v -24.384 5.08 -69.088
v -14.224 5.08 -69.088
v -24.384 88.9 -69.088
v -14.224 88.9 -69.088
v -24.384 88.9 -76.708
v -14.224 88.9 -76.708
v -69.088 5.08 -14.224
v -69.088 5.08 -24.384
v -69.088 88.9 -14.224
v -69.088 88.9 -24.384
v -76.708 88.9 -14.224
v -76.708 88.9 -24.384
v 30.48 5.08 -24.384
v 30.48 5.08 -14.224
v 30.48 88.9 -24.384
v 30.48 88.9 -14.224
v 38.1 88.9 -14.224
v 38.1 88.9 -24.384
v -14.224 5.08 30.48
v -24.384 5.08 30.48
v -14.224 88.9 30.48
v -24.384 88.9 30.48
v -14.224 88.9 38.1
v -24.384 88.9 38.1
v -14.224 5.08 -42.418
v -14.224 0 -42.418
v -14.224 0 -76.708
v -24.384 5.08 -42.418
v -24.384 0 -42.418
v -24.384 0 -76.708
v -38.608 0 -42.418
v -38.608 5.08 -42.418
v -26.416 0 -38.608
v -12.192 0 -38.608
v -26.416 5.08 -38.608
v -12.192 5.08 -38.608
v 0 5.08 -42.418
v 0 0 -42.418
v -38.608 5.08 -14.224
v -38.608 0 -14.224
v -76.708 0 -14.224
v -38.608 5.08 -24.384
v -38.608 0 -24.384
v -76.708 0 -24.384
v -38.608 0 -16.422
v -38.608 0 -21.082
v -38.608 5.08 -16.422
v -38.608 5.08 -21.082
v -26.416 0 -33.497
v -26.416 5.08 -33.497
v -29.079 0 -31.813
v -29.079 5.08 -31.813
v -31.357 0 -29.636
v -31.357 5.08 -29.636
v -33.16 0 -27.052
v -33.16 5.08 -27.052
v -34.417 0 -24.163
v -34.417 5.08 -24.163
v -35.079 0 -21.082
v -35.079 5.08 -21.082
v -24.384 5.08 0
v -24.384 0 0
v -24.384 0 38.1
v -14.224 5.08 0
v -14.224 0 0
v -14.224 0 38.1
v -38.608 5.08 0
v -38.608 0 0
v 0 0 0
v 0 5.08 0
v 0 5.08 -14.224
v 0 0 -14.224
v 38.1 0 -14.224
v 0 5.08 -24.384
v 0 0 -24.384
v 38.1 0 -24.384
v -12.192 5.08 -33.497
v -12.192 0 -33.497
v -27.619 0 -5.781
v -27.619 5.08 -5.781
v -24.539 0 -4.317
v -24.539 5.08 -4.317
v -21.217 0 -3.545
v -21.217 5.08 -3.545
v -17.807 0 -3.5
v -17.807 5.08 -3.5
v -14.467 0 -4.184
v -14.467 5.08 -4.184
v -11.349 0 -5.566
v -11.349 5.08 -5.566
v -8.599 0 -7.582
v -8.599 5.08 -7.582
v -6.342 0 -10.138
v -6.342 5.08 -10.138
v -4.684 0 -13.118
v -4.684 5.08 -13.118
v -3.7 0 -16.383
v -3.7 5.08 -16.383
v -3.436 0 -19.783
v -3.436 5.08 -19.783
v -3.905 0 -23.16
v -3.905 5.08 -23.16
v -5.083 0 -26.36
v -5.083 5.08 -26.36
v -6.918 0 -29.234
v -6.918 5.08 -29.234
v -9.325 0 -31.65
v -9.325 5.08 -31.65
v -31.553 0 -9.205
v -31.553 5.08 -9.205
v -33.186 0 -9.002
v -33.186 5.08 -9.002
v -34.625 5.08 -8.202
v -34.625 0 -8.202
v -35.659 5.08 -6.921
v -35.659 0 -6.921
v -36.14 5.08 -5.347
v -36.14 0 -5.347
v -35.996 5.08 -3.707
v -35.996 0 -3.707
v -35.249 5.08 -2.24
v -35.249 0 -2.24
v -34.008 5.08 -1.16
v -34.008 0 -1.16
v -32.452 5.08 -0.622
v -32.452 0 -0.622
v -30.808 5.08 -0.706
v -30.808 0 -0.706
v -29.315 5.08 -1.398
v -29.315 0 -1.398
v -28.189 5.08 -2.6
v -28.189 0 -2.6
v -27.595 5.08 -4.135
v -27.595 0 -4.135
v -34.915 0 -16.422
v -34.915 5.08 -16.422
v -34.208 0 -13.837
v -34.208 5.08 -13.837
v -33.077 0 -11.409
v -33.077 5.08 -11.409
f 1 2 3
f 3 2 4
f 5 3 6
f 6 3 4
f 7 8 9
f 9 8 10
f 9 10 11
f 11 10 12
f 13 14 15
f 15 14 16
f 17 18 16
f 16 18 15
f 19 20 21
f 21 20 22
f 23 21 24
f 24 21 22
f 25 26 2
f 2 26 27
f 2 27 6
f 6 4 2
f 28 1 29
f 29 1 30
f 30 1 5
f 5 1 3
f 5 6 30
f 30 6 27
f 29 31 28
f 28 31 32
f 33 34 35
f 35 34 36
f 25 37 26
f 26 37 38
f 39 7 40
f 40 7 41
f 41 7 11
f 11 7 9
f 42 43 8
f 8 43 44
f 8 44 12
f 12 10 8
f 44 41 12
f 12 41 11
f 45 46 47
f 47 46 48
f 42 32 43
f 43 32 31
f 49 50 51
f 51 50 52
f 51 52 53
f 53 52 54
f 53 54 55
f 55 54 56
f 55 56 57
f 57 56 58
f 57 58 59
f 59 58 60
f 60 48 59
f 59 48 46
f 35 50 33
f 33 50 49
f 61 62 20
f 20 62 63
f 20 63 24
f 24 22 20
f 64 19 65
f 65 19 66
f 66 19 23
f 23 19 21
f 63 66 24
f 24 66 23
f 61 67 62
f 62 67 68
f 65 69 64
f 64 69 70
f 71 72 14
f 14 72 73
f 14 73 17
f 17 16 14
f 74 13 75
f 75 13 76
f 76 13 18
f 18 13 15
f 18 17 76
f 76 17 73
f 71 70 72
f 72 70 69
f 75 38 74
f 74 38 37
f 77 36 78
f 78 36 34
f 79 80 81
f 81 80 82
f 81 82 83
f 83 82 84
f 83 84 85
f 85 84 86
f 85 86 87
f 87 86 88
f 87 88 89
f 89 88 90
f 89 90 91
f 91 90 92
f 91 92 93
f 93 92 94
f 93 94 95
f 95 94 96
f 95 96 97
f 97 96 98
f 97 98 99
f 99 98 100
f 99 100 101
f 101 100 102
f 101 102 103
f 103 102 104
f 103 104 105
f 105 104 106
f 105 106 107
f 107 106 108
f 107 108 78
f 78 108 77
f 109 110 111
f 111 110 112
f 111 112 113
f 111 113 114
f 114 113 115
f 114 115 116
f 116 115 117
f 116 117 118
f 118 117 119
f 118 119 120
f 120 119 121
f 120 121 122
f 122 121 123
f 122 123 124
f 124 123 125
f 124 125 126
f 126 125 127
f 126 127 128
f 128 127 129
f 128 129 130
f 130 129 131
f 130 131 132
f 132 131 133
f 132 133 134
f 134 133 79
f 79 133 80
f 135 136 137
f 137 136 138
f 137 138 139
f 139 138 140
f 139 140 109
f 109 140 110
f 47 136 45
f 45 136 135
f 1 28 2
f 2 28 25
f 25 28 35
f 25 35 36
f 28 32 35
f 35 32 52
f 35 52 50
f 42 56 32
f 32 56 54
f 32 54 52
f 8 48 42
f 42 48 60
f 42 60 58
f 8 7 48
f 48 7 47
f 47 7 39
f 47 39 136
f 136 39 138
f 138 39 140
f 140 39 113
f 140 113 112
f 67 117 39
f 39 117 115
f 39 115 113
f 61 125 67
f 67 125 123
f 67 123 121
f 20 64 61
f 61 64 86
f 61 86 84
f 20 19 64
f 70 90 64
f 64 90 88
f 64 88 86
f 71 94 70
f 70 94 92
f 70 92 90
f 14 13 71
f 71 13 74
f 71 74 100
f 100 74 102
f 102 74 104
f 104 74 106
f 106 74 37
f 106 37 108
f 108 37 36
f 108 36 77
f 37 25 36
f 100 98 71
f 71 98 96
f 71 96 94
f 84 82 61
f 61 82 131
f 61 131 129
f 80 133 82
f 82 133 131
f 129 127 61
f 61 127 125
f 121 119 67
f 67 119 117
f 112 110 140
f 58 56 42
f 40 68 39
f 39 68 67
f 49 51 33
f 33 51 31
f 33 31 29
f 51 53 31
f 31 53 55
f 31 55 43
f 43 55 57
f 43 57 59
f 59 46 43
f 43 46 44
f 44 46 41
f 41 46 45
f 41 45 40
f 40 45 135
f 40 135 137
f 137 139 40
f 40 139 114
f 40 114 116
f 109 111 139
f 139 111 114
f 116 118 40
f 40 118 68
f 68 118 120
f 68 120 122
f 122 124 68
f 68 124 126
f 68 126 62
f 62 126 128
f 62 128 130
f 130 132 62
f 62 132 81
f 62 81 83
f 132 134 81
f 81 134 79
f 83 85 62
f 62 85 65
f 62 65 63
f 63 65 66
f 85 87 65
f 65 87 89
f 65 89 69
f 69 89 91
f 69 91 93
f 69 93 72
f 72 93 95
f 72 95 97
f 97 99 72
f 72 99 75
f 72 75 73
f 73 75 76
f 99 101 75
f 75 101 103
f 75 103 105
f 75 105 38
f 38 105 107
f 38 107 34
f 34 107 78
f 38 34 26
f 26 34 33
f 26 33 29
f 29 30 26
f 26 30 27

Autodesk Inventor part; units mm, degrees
ref_plane "YZ Plane" through (0, 0, 0) normal (1, 0, 0) x (0, 1, 0)
ref_plane "XZ Plane" through (0, 0, 0) normal (0, 1, 0) x (-1, 0, 0)
ref_plane "XY Plane" through (0, 0, 0) normal (0, 0, 1) x (1, 0, 0)
sketch "Sketch1" plane through (0, 0, 0) normal (0, 1, 0) x (-1, 0, 0)
  line L0 (0, 0) -> (38.608, 0)
  line L1 (38.608, 0) -> (38.608, -38.608)
  line L2 (38.608, -38.608) -> (0, -38.608)
  line L3 (0, -38.608) -> (0, 0)
  dimension "d0" = 38.608
  dimension "d1" = 38.608
extrude "Extrusion1" add sketch "Sketch1" along normal blind 5.08
sketch "Sketch2" plane through (0, 0, 0) normal (0, -1, 0) x (1, 0, 0)
  line L0 (-38.608, 0) -> (0, 0) projected
  circle A0 centre (-19.304, -19.304) radius 15.875
  line L1 (-38.608, -38.608) -> (-38.608, 0) projected
  line L2 (-38.608, -19.304) -> (-38.608, -21.082)
  line L3 (-38.608, -21.082) -> (-34.9151, -21.082)
  line L4 (-34.9151, -21.082) -> (-34.9151, -16.4216)
  line L5 (-34.9151, -16.4216) -> (-38.608, -16.4216)
  line L6 (-38.608, -16.4216) -> (-38.608, -21.082)
  line L7 (-19.304, -19.304) -> (-19.304, -38.608)
  line L8 (0, -38.608) -> (-38.608, -38.608) projected
  line L9 (-12.192, -31.75) -> (-12.192, -38.608)
  line L10 (-12.192, -38.608) -> (-26.416, -38.608)
  line L11 (-26.416, -38.608) -> (-26.416, -31.75)
  line L12 (-26.416, -31.75) -> (-12.192, -31.75)
  line L13 (-12.192, -31.75) -> (-26.416, -38.608) construction
  line L14 (-12.192, -38.608) -> (-26.416, -31.75) construction
  line L15 (-19.304, -19.304) -> (-0.2032, -19.304) construction
  circle A1 centre (-31.8453, -4.8972) radius 4.318
  point P0 (-35.0791, -21.082)
  point P1 (-19.304, -35.179)
  point P2 (-26.416, -33.4968)
  point P3 (-12.192, -33.4968)
  point P4 (-31.5527, -9.2053)
  point P5 (-27.6186, -5.7806)
  dimension "d4" = 31.75
  dimension "d8" = 14.224
  dimension "d11" = 8.636
  dimension "d42" = 6.858
  dimension "d43" = 3.6929
  dimension "d44" = 4.6604
  dimension "d45" = 3.6929
extrude "Extrusion2" cut sketch "Sketch2" against normal blind 6.35 contours A0 L9 L12 L11 L3 L4 A1 | A1 A0 | A0 A1 | L9 L8 L7 A0 | A0 L7 L12 L9 | L7 L8 L11 A0 | A0 L11 L12 L7 | L4 L3 A0 | A0 L3 L1 L5
sketch "Sketch4" plane through (0, 0, 0) normal (1, 0, 0) x (0, 0, -1)
  line L0 (38.608, 0) -> (38.608, 5.08) projected
  line L1 (0, 5.08) -> (38.608, 5.08) projected
  line L2 (12.954, 6.35) -> (25.654, 6.35)
  line L3 (14.224, 0) -> (14.224, 6.35)
  line L4 (14.224, 6.35) -> (24.384, 6.35)
  line L5 (24.384, 6.35) -> (24.384, 0)
  line L6 (24.384, 0) -> (14.224, 0)
  line L7 (14.224, 0) -> (24.384, 6.35) construction
  line L8 (14.224, 6.35) -> (24.384, 0) construction
  point P0 (0, 0)
  point P1 (19.304, 3.175)
  point P2 (24.384, 5.08)
  point P3 (14.224, 5.08)
  dimension "d19" = 10.16
extrude "Extrusion4" add sketch "Sketch4" along normal blind 38.1 contours L1 L5 L6 L3
sketch "Sketch6" plane through (-38.608, 0, 0) normal (0, 0, 1) x (1, 0, 0)
  line L0 (0, 0) -> (3.6929, 0) projected
  line L1 (38.608, 5.08) -> (76.708, 5.08) projected
  line L2 (0, 0) -> (0, 5.08) projected
  line L3 (38.608, 0) -> (76.708, 0) projected
  line L4 (0, 5.08) -> (38.608, 5.08) projected
  line L5 (24.384, 5.08) -> (14.224, 5.08)
  line L6 (0, 0) -> (38.608, 0) projected
  line L7 (14.224, 0) -> (24.384, 0)
  line L8 (24.384, 0) -> (24.384, 5.08)
  line L9 (24.384, 5.08) -> (14.224, 5.08)
  line L10 (14.224, 5.08) -> (14.224, 0)
  line L11 (14.224, 0) -> (24.384, 5.08) construction
  line L12 (24.384, 0) -> (14.224, 5.08) construction
  point P0 (19.304, 2.54)
  dimension "d24" = 10.16
sketch "Sketch7" plane through (-38.608, 0, -38.608) normal (-1, 0, 0) x (0, 0, 1)
  line L0 (0, 0) -> (0, 5.08) projected
  line L1 (22.1864, 0) -> (38.608, 0) projected
  line L2 (22.1864, 5.08) -> (38.608, 5.08) projected
  line L3 (38.608, 0) -> (38.608, 5.08) projected
  line L4 (5.1112, 5.08) -> (35.179, 5.08) projected
  line L5 (24.384, 0) -> (14.224, 0)
  line L6 (14.224, 0) -> (14.224, 5.08)
  line L7 (14.224, 5.08) -> (24.384, 5.08)
  line L8 (24.384, 5.08) -> (24.384, 0)
  line L9 (24.384, 0) -> (14.224, 5.08) construction
  line L10 (14.224, 0) -> (24.384, 5.08) construction
  point P0 (32.8274, 5.08)
  point P1 (19.304, 2.54)
  dimension "d25" = 10.16
extrude "Extrusion5" add sketch "Sketch6" along normal blind 38.1 contours L10 L4 L8 L6
extrude "Extrusion6" add sketch "Sketch7" along normal blind 38.1 contours L5 L6 L4 L2 L8 L1
sketch "Sketch8" plane through (0, 0, -38.608) normal (0, 0, -1) x (-1, 0, 0)
  line L0 (0, 0) -> (0, 5.08) projected
  line L1 (38.608, 0) -> (34.9151, 0) projected
  line L2 (0, 5.08) -> (38.608, 5.08)
  line L3 (38.608, 5.08) -> (38.608, 0)
  line L4 (38.608, 0) -> (0, 0)
  line L5 (0, 0) -> (0, 5.08)
extrude "Extrusion7" add sketch "Sketch8" along normal blind 3.81
sketch "Sketch9" plane through (0, 0, -42.418) normal (0, 0, -1) x (-1, 0, 0)
  line L0 (38.608, 5.08) -> (0, 5.08) projected
  line L1 (38.608, 0) -> (76.708, 0) projected
  line L2 (3.429, 5.08) -> (27.6186, 5.08) projected
  line L3 (14.224, 0) -> (24.384, 0)
  line L4 (24.384, 0) -> (24.384, 5.08)
  line L5 (24.384, 5.08) -> (14.224, 5.08)
  line L6 (14.224, 5.08) -> (14.224, 0)
  line L7 (14.224, 0) -> (24.384, 5.08) construction
  line L8 (24.384, 0) -> (14.224, 5.08) construction
  point P0 (0, 0)
  point P1 (12.192, 5.08)
  point P2 (19.304, 2.54)
  point P3 (14.224, 5.08)
  dimension "d32" = 10.16
extrude "Extrusion8" add sketch "Sketch9" along normal blind 34.29
sketch "Sketch10" plane through (0, 5.08, 0) normal (0, 1, 0) x (1, 0, 0)
  line L0 (-76.708, 24.384) -> (-76.708, 14.224) projected
  line L1 (-38.608, 24.384) -> (-76.708, 24.384) projected
  line L2 (-76.708, 14.224) -> (-69.088, 14.224)
  line L3 (-69.088, 14.224) -> (-69.088, 24.384)
  line L4 (-69.088, 24.384) -> (-76.708, 24.384)
  line L5 (-76.708, 24.384) -> (-76.708, 14.224)
  line L6 (-14.224, 76.708) -> (-24.384, 76.708) projected
  line L7 (-14.224, 76.708) -> (-24.384, 76.708)
  line L8 (-24.384, 76.708) -> (-24.384, 69.088)
  line L9 (-24.384, 69.088) -> (-14.224, 69.088)
  line L10 (-14.224, 69.088) -> (-14.224, 76.708)
  line L11 (38.1, 14.224) -> (38.1, 24.384) projected
  line L12 (0, 24.384) -> (38.1, 24.384) projected
  line L13 (38.1, 14.224) -> (30.48, 14.224)
  line L14 (30.48, 14.224) -> (30.48, 24.384)
  line L15 (30.48, 24.384) -> (38.1, 24.384)
  line L16 (38.1, 24.384) -> (38.1, 14.224)
  line L17 (-14.224, 0) -> (-14.224, -38.1) projected
  line L18 (-24.384, 0) -> (-24.384, -38.1) projected
  line L19 (-14.224, -38.1) -> (-24.384, -38.1)
  line L20 (-24.384, -38.1) -> (-24.384, -30.48)
  line L21 (-24.384, -30.48) -> (-14.224, -30.48)
  line L22 (-14.224, -30.48) -> (-14.224, -38.1)
  point P0 (0, 0)
  dimension "d35" = 7.62
  dimension "d36" = 10.16
  dimension "d37" = 7.62
  dimension "d38" = 7.62
  dimension "d39" = 7.62
extrude "Extrusion9" add sketch "Sketch10" along normal blind 83.82
properties part number "Camera Stand 2.0"
